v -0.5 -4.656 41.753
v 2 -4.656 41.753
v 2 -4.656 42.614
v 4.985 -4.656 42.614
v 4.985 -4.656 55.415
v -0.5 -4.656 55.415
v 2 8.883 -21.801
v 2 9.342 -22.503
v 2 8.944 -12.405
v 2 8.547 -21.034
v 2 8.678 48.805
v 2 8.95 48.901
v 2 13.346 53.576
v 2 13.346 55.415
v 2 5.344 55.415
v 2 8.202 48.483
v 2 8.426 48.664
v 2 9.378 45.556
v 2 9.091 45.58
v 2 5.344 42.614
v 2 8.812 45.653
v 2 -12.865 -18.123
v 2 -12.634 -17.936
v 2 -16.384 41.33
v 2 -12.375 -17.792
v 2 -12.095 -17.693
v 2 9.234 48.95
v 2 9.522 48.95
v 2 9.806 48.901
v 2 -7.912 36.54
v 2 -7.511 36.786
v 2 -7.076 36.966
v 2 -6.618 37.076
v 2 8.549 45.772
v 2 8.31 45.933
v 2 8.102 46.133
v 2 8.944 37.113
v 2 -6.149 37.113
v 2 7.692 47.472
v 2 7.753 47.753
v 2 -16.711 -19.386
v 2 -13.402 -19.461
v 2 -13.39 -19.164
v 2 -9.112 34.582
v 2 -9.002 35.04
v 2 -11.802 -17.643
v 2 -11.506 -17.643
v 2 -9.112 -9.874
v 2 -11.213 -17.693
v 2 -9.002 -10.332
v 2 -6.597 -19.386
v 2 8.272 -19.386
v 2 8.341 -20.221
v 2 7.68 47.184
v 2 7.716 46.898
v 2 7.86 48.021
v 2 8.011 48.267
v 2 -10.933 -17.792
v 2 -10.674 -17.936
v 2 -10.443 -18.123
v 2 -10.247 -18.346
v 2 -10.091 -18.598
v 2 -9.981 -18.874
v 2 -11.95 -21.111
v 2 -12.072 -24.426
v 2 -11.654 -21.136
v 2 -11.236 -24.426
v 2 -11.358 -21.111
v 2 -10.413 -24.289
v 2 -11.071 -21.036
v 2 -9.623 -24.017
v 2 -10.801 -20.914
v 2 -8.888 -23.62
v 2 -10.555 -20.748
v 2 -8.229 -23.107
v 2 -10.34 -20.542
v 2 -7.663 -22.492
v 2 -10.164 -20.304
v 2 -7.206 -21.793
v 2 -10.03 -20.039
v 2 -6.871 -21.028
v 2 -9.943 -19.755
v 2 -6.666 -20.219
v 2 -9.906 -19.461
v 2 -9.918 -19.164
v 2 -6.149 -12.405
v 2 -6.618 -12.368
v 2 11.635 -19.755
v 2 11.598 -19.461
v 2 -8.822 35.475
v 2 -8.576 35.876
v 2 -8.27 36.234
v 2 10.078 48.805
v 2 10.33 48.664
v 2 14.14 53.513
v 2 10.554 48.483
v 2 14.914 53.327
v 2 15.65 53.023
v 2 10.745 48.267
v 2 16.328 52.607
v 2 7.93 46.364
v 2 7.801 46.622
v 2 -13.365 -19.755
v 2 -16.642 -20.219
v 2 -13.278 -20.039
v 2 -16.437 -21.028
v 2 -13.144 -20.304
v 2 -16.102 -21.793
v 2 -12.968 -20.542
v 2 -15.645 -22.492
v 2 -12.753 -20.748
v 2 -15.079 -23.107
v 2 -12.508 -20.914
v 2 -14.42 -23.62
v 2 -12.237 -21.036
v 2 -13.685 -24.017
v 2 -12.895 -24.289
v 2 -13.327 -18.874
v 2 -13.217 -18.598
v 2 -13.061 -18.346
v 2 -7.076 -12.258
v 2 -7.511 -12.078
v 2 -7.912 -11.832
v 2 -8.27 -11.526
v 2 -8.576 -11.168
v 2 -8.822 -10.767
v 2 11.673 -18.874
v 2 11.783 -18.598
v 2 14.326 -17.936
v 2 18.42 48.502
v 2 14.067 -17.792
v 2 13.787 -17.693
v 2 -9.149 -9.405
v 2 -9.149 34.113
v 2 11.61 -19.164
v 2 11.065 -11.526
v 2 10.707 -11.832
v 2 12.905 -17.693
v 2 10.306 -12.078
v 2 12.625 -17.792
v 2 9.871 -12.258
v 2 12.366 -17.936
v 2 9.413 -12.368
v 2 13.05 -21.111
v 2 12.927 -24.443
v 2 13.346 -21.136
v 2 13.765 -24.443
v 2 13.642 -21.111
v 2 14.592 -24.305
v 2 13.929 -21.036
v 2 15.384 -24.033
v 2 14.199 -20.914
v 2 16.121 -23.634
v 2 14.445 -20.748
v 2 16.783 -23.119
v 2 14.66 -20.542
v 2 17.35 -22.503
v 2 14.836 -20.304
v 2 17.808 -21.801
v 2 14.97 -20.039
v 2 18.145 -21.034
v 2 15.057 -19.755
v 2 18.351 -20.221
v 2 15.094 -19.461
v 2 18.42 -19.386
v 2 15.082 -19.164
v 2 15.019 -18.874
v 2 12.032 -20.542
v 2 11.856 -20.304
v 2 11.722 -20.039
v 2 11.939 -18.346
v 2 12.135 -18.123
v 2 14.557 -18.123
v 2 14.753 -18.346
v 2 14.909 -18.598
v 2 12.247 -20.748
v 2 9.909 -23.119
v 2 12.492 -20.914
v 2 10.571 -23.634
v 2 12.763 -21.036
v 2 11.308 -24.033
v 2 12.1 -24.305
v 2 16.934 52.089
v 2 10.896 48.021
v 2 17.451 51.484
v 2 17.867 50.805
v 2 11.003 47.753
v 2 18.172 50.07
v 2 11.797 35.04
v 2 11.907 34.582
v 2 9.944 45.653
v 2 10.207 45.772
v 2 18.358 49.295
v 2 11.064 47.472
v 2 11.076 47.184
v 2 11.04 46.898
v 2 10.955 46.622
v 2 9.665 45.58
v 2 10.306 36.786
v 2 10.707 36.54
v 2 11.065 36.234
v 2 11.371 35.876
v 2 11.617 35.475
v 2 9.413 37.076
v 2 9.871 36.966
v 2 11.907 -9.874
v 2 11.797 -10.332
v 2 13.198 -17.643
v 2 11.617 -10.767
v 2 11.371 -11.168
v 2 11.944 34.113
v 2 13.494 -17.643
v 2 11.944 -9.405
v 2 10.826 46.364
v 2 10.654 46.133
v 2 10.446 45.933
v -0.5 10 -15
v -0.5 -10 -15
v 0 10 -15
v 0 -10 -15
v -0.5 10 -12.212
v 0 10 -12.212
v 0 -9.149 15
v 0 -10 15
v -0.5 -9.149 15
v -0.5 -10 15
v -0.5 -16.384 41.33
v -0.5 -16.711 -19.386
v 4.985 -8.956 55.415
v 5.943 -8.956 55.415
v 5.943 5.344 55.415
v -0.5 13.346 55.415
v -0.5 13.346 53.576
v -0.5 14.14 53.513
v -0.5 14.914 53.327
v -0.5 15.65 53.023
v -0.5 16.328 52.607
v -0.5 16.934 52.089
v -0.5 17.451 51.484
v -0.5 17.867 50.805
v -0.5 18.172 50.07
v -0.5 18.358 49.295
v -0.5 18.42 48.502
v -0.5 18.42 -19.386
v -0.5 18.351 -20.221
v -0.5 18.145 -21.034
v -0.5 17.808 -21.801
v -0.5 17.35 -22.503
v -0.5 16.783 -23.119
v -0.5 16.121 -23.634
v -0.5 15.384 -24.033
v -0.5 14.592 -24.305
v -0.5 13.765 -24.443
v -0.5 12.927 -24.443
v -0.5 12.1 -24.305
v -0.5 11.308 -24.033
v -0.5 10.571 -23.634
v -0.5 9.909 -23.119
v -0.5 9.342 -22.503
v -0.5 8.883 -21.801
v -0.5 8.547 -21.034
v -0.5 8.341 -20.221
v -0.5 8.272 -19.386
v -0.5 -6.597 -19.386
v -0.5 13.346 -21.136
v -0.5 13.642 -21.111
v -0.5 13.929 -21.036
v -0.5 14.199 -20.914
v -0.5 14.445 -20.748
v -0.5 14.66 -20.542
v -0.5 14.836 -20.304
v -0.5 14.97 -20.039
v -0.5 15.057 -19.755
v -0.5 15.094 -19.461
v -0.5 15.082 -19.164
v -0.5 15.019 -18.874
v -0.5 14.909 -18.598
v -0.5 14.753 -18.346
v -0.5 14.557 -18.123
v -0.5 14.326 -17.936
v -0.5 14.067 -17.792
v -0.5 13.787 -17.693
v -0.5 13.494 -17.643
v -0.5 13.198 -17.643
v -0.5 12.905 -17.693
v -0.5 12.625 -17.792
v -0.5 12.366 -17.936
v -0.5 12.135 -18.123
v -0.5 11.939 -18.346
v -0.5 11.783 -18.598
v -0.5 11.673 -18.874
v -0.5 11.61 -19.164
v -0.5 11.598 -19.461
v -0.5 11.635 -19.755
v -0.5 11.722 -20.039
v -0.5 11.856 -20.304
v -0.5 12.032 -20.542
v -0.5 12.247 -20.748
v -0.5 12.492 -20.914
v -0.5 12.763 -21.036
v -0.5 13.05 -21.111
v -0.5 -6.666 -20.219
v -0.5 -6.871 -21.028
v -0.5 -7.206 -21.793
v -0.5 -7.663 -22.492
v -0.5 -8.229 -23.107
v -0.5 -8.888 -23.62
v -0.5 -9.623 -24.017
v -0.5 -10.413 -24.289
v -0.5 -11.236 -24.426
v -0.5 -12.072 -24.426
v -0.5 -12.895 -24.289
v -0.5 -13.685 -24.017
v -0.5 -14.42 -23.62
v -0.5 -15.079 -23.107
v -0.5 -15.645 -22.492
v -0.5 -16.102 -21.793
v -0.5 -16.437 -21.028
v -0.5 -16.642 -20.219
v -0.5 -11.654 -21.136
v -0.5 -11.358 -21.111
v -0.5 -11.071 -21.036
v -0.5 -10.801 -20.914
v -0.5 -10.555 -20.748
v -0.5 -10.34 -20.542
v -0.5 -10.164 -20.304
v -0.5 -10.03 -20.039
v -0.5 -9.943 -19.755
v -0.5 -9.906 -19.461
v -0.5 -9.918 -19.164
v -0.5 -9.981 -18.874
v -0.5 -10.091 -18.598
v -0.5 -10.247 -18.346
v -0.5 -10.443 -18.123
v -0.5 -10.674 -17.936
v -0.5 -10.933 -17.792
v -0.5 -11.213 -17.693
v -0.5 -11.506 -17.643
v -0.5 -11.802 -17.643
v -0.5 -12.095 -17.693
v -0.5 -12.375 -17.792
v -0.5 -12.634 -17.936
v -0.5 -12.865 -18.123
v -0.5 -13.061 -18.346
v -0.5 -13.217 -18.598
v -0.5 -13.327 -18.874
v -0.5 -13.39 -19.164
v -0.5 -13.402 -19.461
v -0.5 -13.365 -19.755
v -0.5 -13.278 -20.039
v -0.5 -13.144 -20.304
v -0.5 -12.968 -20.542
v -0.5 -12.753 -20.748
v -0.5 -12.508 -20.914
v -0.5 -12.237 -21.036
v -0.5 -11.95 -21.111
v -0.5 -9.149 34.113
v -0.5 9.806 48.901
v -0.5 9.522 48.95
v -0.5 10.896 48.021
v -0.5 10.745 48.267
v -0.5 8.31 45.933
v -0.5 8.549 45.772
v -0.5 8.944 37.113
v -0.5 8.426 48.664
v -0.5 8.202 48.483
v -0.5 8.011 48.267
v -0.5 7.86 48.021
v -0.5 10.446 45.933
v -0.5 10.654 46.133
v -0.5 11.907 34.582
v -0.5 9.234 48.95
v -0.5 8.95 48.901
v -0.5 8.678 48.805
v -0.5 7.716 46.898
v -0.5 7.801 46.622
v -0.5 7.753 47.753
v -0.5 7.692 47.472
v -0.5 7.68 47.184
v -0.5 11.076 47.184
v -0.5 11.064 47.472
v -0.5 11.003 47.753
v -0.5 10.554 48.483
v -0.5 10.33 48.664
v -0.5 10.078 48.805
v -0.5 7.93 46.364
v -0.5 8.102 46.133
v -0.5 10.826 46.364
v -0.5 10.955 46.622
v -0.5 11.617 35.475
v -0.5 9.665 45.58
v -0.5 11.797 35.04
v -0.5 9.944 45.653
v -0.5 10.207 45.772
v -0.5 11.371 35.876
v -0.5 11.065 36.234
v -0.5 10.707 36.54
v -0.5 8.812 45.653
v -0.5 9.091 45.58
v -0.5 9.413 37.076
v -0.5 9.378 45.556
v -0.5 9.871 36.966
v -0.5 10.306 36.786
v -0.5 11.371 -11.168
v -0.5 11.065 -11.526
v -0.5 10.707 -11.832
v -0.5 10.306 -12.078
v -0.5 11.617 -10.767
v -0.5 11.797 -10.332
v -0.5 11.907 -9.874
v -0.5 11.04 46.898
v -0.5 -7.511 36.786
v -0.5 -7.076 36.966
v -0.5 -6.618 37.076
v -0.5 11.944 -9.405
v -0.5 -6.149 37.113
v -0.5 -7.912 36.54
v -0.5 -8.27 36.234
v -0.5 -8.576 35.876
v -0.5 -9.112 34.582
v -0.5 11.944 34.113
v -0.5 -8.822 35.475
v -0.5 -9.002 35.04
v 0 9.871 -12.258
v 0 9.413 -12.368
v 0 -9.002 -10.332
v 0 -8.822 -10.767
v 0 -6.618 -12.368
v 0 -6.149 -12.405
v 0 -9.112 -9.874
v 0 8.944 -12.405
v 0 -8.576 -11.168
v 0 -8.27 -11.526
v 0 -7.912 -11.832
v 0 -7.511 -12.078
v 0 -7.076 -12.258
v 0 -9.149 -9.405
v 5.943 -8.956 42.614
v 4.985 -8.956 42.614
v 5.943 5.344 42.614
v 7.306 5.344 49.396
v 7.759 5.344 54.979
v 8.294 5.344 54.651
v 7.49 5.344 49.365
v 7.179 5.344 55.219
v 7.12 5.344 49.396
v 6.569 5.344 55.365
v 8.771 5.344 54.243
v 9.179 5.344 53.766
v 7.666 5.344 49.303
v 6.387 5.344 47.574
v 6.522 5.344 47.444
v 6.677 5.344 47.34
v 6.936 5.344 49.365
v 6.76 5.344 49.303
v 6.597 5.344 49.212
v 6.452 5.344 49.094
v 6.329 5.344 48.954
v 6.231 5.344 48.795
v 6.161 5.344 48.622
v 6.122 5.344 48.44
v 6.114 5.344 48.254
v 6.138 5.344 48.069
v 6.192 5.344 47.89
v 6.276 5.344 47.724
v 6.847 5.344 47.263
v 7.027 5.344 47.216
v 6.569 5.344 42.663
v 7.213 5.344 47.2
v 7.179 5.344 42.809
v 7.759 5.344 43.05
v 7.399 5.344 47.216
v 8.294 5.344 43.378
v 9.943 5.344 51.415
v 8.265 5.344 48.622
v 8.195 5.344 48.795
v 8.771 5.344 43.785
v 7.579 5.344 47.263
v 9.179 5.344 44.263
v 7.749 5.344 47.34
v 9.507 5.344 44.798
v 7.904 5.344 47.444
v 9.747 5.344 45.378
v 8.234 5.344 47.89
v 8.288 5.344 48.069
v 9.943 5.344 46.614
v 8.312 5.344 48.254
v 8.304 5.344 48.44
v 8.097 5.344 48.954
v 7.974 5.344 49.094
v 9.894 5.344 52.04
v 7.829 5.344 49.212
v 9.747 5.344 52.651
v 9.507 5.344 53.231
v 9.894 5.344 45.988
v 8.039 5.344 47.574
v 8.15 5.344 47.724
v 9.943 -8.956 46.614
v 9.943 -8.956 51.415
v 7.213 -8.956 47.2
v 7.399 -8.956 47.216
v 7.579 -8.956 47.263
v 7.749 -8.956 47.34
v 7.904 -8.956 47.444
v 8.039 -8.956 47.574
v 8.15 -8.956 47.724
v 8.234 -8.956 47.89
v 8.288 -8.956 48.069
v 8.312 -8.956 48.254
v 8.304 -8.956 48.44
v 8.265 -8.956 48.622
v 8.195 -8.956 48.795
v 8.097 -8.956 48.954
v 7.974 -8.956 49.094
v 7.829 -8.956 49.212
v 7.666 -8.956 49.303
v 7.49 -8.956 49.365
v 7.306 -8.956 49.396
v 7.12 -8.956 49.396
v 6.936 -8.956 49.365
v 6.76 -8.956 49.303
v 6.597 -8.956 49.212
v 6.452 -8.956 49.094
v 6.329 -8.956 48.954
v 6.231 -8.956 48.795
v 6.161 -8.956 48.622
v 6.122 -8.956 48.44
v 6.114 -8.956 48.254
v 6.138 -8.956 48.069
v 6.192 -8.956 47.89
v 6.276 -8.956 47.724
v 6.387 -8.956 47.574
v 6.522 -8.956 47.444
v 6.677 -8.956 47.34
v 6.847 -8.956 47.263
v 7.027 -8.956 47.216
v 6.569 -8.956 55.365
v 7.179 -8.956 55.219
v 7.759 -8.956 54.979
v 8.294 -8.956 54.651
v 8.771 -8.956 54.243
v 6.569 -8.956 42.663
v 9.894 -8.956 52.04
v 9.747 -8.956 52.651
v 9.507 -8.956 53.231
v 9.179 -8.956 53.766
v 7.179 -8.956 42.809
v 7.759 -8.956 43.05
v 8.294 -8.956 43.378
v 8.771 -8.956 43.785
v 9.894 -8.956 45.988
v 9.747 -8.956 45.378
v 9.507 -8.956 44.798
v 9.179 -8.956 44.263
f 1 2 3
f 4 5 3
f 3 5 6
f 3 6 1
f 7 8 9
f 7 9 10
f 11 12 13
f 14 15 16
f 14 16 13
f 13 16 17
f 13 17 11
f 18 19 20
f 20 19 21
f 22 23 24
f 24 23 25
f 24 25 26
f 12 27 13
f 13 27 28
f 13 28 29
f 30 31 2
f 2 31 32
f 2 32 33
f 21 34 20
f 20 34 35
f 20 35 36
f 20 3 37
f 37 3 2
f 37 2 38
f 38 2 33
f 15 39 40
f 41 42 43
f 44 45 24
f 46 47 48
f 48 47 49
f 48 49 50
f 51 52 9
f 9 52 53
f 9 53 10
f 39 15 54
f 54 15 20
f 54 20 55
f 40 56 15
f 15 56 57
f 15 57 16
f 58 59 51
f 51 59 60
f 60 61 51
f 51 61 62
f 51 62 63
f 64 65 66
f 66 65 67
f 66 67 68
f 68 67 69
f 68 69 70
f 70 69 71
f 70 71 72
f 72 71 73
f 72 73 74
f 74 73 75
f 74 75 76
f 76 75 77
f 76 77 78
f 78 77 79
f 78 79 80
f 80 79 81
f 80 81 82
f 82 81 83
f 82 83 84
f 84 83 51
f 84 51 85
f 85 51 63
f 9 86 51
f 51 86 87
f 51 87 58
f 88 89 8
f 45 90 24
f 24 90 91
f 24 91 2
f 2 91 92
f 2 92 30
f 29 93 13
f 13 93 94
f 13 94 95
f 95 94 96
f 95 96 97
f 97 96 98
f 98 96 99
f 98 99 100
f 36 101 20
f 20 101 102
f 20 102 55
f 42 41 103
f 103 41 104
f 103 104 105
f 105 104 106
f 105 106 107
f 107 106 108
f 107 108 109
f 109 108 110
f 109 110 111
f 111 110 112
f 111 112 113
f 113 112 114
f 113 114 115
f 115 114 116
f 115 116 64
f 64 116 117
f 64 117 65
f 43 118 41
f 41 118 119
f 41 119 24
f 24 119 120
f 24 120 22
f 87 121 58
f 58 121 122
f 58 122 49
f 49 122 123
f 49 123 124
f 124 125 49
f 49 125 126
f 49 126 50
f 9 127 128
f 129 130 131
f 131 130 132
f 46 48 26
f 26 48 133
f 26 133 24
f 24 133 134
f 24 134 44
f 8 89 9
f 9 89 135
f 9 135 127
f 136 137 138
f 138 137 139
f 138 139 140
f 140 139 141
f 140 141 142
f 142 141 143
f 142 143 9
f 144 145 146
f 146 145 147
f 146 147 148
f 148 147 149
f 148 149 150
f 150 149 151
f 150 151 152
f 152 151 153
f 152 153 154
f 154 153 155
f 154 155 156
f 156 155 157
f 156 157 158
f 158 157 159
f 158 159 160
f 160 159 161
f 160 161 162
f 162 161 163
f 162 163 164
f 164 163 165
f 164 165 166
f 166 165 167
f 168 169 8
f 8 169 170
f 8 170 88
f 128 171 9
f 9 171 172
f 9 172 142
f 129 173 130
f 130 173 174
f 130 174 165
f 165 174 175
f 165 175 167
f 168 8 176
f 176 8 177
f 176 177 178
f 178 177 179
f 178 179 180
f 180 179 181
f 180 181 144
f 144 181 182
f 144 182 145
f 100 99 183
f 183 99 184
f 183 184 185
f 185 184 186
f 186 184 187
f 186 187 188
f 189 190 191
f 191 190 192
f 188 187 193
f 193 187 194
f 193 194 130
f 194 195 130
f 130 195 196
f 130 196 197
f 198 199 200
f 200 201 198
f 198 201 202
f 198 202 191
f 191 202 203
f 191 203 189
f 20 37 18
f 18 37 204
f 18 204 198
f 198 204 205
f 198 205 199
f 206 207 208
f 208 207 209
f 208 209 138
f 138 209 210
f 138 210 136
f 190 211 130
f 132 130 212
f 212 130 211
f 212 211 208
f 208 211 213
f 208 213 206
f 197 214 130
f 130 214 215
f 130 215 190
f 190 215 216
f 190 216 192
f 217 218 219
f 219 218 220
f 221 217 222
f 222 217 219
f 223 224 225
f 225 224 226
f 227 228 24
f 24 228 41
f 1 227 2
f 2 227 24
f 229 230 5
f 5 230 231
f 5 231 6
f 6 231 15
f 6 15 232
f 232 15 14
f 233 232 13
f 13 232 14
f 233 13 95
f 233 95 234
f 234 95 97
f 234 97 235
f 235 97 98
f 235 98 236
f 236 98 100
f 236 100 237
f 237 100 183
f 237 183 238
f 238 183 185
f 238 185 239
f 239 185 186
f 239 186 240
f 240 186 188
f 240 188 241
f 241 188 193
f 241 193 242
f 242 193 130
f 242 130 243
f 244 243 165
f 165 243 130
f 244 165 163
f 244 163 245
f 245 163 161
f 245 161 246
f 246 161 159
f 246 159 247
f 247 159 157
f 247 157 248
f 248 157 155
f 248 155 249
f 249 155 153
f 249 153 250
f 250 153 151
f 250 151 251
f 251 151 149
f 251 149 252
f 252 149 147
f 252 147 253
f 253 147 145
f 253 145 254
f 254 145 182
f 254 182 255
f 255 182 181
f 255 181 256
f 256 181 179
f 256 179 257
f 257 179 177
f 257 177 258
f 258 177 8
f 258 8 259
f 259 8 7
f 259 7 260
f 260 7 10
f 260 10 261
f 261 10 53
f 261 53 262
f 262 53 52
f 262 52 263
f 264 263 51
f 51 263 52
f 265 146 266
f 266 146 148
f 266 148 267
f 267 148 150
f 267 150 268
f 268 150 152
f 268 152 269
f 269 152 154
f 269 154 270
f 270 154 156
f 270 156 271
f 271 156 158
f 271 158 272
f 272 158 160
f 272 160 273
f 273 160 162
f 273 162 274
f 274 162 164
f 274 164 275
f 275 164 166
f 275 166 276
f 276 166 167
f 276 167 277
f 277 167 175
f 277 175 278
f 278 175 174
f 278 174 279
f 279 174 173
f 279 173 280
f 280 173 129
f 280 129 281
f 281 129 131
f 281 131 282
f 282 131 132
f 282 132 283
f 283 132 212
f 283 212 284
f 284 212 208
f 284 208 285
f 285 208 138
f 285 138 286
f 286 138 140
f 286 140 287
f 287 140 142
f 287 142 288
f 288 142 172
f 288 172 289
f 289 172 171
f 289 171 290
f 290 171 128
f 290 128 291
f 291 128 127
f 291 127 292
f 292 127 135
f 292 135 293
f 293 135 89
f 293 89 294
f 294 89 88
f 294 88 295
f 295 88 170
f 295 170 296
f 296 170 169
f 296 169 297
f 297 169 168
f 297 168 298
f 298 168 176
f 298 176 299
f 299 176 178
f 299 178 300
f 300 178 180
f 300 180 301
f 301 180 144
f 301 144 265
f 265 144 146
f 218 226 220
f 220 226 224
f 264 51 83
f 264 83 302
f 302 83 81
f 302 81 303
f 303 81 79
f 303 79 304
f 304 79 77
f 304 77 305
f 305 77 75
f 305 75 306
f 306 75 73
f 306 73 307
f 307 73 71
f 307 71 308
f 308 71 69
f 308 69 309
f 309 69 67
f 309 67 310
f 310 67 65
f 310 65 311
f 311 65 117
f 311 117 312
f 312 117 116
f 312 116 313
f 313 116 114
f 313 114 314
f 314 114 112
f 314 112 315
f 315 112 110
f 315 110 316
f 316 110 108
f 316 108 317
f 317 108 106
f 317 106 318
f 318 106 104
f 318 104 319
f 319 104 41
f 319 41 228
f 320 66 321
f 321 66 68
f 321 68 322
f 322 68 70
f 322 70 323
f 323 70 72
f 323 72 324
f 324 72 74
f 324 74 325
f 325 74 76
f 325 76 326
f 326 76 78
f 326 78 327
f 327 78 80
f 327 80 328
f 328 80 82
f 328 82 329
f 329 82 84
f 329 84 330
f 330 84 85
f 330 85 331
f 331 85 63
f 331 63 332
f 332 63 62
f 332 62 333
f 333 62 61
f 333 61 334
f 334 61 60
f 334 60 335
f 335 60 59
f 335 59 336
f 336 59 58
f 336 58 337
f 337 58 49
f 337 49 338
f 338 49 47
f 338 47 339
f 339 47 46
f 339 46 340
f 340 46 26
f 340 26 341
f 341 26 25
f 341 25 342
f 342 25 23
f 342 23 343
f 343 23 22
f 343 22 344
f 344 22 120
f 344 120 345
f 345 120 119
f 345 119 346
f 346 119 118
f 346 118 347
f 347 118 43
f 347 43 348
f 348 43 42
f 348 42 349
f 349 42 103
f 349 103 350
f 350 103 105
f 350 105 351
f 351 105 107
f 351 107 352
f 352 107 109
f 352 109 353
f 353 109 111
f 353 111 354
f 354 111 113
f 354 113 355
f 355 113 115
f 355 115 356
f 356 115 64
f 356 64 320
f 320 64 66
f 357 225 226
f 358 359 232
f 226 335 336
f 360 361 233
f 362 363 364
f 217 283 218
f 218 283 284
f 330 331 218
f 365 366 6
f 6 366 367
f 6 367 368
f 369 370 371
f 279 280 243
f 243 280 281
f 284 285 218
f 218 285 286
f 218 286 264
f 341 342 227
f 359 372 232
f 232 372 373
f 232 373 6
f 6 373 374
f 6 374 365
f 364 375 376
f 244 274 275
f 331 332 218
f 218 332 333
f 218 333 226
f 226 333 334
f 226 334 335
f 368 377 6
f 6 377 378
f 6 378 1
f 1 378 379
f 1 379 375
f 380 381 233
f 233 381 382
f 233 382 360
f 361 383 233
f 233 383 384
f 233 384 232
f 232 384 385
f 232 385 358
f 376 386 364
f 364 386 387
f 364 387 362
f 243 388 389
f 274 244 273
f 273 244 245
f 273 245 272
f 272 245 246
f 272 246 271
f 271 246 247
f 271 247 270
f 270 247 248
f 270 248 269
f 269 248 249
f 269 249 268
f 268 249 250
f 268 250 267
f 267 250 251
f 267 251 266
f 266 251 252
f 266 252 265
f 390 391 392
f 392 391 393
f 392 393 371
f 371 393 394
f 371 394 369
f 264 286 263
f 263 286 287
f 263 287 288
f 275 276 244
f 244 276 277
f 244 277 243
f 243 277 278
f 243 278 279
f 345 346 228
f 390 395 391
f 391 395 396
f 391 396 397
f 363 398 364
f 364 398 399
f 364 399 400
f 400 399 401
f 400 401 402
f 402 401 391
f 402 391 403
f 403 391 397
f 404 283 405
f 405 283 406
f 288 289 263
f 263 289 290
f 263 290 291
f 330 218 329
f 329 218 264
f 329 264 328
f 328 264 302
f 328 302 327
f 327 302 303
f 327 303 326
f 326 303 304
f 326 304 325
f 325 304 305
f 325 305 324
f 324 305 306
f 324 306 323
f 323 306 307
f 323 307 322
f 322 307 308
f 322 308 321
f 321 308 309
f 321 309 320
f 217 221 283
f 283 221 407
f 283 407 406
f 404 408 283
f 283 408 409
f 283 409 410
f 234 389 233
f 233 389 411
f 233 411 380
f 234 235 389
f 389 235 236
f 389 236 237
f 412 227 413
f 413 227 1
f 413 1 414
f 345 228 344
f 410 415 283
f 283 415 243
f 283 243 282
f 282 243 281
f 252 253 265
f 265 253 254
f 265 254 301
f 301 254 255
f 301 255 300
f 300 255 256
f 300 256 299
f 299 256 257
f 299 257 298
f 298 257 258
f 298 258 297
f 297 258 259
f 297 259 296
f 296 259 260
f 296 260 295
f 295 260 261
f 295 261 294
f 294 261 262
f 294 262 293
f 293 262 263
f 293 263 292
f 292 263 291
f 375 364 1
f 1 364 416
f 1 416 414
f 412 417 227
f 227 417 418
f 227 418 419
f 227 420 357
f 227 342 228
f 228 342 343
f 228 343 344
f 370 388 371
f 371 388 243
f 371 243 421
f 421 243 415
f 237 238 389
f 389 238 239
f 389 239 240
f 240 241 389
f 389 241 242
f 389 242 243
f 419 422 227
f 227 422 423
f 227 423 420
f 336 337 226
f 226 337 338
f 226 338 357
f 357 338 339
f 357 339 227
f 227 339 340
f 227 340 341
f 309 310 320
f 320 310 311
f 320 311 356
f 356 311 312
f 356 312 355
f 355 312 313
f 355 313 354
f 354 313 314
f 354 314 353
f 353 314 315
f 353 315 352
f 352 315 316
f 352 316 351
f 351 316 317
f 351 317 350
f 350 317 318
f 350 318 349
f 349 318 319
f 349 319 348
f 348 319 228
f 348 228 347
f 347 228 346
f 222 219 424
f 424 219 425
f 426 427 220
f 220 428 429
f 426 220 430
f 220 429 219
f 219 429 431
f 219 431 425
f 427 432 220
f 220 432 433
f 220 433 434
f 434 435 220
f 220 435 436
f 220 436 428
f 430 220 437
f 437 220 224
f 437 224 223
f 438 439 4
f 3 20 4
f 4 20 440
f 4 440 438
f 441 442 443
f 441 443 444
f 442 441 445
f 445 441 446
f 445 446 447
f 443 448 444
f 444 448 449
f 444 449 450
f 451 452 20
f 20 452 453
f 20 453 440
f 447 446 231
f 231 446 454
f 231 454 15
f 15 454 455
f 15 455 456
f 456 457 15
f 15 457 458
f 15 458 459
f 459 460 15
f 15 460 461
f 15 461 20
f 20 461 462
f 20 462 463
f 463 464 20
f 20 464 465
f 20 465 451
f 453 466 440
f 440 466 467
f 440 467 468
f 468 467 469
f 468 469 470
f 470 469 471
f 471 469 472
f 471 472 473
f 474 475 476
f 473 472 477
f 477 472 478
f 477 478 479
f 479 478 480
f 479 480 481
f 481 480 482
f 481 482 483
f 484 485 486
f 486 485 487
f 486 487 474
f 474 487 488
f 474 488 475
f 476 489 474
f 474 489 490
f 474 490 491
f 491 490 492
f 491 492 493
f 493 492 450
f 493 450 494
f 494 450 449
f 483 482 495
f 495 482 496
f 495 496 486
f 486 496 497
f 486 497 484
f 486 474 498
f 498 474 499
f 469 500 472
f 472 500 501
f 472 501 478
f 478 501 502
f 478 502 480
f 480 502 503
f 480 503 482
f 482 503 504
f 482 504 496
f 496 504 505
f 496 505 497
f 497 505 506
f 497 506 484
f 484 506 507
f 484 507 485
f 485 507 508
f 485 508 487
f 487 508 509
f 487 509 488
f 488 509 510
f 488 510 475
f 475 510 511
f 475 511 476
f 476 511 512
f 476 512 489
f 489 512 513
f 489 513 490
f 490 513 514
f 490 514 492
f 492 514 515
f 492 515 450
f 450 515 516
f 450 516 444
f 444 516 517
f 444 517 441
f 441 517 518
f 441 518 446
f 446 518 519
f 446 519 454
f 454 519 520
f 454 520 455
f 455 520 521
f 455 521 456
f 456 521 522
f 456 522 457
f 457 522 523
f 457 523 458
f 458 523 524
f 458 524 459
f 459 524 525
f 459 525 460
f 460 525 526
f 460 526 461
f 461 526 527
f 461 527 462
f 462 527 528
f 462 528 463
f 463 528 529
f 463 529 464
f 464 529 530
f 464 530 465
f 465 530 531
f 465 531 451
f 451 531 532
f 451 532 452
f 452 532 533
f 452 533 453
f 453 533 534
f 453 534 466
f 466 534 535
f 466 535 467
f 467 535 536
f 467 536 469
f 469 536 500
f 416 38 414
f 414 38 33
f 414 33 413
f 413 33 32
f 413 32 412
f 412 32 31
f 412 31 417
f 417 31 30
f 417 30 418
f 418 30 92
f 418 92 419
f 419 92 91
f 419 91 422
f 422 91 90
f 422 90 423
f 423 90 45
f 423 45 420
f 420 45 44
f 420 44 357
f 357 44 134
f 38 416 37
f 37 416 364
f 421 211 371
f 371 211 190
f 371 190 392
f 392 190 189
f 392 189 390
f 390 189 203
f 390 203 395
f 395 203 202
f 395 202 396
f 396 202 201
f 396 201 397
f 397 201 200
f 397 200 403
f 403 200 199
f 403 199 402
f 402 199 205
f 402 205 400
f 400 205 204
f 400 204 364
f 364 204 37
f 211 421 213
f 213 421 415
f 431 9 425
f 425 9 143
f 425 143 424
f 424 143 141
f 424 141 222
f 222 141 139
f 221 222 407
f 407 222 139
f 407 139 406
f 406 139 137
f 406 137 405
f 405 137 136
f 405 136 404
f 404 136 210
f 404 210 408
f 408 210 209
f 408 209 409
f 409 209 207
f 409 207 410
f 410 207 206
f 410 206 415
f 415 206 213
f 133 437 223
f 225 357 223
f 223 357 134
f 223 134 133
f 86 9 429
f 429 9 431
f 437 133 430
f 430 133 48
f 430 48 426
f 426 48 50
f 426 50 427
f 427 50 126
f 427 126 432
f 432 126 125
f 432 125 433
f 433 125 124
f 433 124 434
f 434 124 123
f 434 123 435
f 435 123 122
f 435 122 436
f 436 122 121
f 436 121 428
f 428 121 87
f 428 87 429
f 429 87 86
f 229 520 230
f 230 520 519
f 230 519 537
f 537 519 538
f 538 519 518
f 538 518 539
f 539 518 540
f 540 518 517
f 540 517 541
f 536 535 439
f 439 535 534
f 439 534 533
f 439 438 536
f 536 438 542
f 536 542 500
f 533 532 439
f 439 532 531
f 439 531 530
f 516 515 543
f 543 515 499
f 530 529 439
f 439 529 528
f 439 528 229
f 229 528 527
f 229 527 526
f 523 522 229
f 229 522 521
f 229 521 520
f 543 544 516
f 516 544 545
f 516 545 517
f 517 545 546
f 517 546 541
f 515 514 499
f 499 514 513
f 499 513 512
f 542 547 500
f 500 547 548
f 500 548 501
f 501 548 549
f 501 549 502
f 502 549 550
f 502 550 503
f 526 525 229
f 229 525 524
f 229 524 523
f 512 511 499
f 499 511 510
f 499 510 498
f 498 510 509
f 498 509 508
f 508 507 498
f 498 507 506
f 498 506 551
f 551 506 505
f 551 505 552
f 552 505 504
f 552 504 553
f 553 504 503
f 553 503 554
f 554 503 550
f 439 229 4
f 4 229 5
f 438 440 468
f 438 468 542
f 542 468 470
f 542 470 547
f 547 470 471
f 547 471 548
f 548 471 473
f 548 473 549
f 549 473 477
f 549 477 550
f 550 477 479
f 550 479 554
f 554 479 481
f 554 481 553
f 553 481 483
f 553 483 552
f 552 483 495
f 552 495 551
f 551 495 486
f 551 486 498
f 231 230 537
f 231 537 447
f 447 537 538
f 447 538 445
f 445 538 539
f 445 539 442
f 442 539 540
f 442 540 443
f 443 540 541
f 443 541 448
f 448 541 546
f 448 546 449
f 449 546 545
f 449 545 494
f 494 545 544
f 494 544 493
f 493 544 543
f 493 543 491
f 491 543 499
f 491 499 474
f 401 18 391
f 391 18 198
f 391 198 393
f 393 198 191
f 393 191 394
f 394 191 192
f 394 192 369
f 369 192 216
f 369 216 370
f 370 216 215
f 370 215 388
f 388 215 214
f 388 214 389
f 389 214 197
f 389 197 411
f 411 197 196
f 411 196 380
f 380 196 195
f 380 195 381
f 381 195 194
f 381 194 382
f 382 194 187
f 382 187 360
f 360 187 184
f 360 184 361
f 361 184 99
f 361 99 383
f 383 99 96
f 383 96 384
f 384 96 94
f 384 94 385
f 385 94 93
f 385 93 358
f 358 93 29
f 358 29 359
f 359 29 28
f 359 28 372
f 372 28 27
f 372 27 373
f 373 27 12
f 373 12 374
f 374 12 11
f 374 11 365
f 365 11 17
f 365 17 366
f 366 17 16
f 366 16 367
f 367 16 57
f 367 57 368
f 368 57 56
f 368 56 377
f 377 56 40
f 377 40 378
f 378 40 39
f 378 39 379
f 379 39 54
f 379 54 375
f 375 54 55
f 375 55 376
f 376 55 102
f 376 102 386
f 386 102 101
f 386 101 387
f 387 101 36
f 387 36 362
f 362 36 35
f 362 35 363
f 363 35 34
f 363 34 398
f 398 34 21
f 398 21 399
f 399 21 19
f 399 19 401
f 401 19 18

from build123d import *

# Parameters (mm, degrees)
SKETCH1_W           = 30
SKETCH1_H           = 20
BOSS_EXTRUDE1_DEPTH = 2
SKETCH2_W           = 30
SKETCH2_H           = 20
SKETCH2_R           = 1.75
BOSS_EXTRUDE2_DEPTH = 2.5
SKETCH5_W           = 12.800974789
SKETCH5_H           = 10
BOSS_EXTRUDE3_DEPTH = 7.942853576
SKETCH6_R           = 1.1
CUT_EXTRUDE3_DEPTH  = 10.350916352
CUT_EXTRUDE4_DEPTH  = 10
BOSS_EXTRUDE4_START = 4.3
SKETCH8_W           = 4.957735271
SKETCH8_H           = 12.800974789
SKETCH8_R           = 1.1
BOSS_EXTRUDE4_DEPTH = 4.3
FILLET2_R           = 4
SKETCH9_R           = 1.7
CUT_EXTRUDE5_DEPTH  = 5


with BuildPart() as part:
    # Sketch1 → Boss-Extrude1 (new body)
    with BuildSketch(Plane(origin=(0, 0, 0), x_dir=(0, 0, -1), z_dir=(1, 0, 0))):
        Rectangle(SKETCH1_W, SKETCH1_H)
    extrude(amount=BOSS_EXTRUDE1_DEPTH)

    # Sketch2 → Boss-Extrude2 (add)
    with BuildSketch(Plane(origin=(2, 0, 0), x_dir=(0, 0, -1), z_dir=(1, 0, 0))):
        with BuildLine():
            Line((19.386302525, -6.596950759), (19.386302525, 8.271904581))
            ThreePointArc((19.386302525, 8.271904581), (24.460347107, 13.345949163), (19.386302525, 18.419993745))
            Line((19.386302525, 18.419993745), (-48.501605412, 18.419993745))
            ThreePointArc((-48.501605412, 18.419993745), (-52.089496744, 16.933840495), (-53.575649994, 13.345949163))
            Line((-53.575649994, 13.345949163), (-55.414672264, 13.345949163))
            Line((-55.414672264, 13.345949163), (-55.414672264, -4.656096182))
            Line((-55.414672264, -4.656096182), (-41.753395036, -4.656096182))
            Line((-41.753395036, -4.656096182), (-41.329654068, -16.384050837))
            Line((-41.329654068, -16.384050837), (19.386302525, -16.711150914))
            ThreePointArc((19.386302525, -16.711150914), (24.443402602, -11.654050837), (19.386302525, -6.596950759))
        make_face()
        Rectangle(SKETCH2_W, SKETCH2_H, mode=Mode.SUBTRACT)
        with Locations((19.386302525, -11.654050837)):
            Circle(SKETCH2_R, mode=Mode.SUBTRACT)
        with Locations((19.386302525, 13.345949163)):
            Circle(SKETCH2_R, mode=Mode.SUBTRACT)
    extrude(amount=-BOSS_EXTRUDE2_DEPTH)

    # Sketch5 → Boss-Extrude3 (add)
    with BuildSketch(Plane(origin=(2, 0, 0), x_dir=(0, 0, -1), z_dir=(1, 0, 0))):
        with Locations((-49.014184869, 0.343903818)):
            Rectangle(SKETCH5_W, SKETCH5_H)
    extrude(amount=BOSS_EXTRUDE3_DEPTH)

    # Sketch6 → Cut-Extrude3 (cut)
    with BuildSketch(Plane(origin=(4.063003727, -4.656096182, -0.641169076), x_dir=(1, 0, 0), z_dir=(0, -1, 0))):
        with Locations((3.15, 48.941437628)):
            Circle(SKETCH6_R)
    extrude(amount=-CUT_EXTRUDE3_DEPTH, mode=Mode.SUBTRACT)

    # Sketch7 → Cut-Extrude4 (cut)
    with BuildSketch(Plane(origin=(2, 0, 0), x_dir=(0, 0, -1), z_dir=(1, 0, 0))):
        with BuildLine():
            Line((-34.112632424, 11.943731273), (9.404530778, 11.943731273))
            ThreePointArc((9.404530778, 11.943731273), (11.525851122, 11.065051617), (12.404530778, 8.943731273))
            Line((12.404530778, 8.943731273), (12.404530778, -6.148588701))
            ThreePointArc((12.404530778, -6.148588701), (11.525851122, -8.269909045), (9.404530778, -9.148588701))
            Line((9.404530778, -9.148588701), (-34.112632424, -9.148588701))
            ThreePointArc((-34.112632424, -9.148588701), (-36.233952768, -8.269909045), (-37.112632424, -6.148588701))
            Line((-37.112632424, -6.148588701), (-37.112632424, 8.943731273))
            ThreePointArc((-37.112632424, 8.943731273), (-36.233952768, 11.065051617), (-34.112632424, 11.943731273))
        make_face()
    extrude(amount=-CUT_EXTRUDE4_DEPTH, mode=Mode.SUBTRACT)

    # Sketch8 → Boss-Extrude4 (add)
    with BuildSketch(Plane.XZ.offset(4.656096182).offset(BOSS_EXTRUDE4_START)):
        with Locations((7.463985941, 49.014184869)):
            Rectangle(SKETCH8_W, SKETCH8_H)
        with Locations((7.213003727, 48.300268552)):
            Circle(SKETCH8_R, mode=Mode.SUBTRACT)
    extrude(amount=-BOSS_EXTRUDE4_DEPTH)

    # Fillet2
    fillet2_edges = [part.edges().sort_by_distance(p)[0] for p in [
        (9.942853576, -1.806096182, 42.613697475),
        (9.942853576, -1.806096182, 55.414672264),
    ]]
    fillet(fillet2_edges, radius=FILLET2_R)

    # Sketch9 → Cut-Extrude5 (cut)
    with BuildSketch(Plane(origin=(2, 0, 0), x_dir=(0, 0, -1), z_dir=(1, 0, 0))):
        with Locations((-47.255689875, 9.377983735)):
            Circle(SKETCH9_R)
    extrude(amount=-CUT_EXTRUDE5_DEPTH, mode=Mode.SUBTRACT)


solid = part.part
